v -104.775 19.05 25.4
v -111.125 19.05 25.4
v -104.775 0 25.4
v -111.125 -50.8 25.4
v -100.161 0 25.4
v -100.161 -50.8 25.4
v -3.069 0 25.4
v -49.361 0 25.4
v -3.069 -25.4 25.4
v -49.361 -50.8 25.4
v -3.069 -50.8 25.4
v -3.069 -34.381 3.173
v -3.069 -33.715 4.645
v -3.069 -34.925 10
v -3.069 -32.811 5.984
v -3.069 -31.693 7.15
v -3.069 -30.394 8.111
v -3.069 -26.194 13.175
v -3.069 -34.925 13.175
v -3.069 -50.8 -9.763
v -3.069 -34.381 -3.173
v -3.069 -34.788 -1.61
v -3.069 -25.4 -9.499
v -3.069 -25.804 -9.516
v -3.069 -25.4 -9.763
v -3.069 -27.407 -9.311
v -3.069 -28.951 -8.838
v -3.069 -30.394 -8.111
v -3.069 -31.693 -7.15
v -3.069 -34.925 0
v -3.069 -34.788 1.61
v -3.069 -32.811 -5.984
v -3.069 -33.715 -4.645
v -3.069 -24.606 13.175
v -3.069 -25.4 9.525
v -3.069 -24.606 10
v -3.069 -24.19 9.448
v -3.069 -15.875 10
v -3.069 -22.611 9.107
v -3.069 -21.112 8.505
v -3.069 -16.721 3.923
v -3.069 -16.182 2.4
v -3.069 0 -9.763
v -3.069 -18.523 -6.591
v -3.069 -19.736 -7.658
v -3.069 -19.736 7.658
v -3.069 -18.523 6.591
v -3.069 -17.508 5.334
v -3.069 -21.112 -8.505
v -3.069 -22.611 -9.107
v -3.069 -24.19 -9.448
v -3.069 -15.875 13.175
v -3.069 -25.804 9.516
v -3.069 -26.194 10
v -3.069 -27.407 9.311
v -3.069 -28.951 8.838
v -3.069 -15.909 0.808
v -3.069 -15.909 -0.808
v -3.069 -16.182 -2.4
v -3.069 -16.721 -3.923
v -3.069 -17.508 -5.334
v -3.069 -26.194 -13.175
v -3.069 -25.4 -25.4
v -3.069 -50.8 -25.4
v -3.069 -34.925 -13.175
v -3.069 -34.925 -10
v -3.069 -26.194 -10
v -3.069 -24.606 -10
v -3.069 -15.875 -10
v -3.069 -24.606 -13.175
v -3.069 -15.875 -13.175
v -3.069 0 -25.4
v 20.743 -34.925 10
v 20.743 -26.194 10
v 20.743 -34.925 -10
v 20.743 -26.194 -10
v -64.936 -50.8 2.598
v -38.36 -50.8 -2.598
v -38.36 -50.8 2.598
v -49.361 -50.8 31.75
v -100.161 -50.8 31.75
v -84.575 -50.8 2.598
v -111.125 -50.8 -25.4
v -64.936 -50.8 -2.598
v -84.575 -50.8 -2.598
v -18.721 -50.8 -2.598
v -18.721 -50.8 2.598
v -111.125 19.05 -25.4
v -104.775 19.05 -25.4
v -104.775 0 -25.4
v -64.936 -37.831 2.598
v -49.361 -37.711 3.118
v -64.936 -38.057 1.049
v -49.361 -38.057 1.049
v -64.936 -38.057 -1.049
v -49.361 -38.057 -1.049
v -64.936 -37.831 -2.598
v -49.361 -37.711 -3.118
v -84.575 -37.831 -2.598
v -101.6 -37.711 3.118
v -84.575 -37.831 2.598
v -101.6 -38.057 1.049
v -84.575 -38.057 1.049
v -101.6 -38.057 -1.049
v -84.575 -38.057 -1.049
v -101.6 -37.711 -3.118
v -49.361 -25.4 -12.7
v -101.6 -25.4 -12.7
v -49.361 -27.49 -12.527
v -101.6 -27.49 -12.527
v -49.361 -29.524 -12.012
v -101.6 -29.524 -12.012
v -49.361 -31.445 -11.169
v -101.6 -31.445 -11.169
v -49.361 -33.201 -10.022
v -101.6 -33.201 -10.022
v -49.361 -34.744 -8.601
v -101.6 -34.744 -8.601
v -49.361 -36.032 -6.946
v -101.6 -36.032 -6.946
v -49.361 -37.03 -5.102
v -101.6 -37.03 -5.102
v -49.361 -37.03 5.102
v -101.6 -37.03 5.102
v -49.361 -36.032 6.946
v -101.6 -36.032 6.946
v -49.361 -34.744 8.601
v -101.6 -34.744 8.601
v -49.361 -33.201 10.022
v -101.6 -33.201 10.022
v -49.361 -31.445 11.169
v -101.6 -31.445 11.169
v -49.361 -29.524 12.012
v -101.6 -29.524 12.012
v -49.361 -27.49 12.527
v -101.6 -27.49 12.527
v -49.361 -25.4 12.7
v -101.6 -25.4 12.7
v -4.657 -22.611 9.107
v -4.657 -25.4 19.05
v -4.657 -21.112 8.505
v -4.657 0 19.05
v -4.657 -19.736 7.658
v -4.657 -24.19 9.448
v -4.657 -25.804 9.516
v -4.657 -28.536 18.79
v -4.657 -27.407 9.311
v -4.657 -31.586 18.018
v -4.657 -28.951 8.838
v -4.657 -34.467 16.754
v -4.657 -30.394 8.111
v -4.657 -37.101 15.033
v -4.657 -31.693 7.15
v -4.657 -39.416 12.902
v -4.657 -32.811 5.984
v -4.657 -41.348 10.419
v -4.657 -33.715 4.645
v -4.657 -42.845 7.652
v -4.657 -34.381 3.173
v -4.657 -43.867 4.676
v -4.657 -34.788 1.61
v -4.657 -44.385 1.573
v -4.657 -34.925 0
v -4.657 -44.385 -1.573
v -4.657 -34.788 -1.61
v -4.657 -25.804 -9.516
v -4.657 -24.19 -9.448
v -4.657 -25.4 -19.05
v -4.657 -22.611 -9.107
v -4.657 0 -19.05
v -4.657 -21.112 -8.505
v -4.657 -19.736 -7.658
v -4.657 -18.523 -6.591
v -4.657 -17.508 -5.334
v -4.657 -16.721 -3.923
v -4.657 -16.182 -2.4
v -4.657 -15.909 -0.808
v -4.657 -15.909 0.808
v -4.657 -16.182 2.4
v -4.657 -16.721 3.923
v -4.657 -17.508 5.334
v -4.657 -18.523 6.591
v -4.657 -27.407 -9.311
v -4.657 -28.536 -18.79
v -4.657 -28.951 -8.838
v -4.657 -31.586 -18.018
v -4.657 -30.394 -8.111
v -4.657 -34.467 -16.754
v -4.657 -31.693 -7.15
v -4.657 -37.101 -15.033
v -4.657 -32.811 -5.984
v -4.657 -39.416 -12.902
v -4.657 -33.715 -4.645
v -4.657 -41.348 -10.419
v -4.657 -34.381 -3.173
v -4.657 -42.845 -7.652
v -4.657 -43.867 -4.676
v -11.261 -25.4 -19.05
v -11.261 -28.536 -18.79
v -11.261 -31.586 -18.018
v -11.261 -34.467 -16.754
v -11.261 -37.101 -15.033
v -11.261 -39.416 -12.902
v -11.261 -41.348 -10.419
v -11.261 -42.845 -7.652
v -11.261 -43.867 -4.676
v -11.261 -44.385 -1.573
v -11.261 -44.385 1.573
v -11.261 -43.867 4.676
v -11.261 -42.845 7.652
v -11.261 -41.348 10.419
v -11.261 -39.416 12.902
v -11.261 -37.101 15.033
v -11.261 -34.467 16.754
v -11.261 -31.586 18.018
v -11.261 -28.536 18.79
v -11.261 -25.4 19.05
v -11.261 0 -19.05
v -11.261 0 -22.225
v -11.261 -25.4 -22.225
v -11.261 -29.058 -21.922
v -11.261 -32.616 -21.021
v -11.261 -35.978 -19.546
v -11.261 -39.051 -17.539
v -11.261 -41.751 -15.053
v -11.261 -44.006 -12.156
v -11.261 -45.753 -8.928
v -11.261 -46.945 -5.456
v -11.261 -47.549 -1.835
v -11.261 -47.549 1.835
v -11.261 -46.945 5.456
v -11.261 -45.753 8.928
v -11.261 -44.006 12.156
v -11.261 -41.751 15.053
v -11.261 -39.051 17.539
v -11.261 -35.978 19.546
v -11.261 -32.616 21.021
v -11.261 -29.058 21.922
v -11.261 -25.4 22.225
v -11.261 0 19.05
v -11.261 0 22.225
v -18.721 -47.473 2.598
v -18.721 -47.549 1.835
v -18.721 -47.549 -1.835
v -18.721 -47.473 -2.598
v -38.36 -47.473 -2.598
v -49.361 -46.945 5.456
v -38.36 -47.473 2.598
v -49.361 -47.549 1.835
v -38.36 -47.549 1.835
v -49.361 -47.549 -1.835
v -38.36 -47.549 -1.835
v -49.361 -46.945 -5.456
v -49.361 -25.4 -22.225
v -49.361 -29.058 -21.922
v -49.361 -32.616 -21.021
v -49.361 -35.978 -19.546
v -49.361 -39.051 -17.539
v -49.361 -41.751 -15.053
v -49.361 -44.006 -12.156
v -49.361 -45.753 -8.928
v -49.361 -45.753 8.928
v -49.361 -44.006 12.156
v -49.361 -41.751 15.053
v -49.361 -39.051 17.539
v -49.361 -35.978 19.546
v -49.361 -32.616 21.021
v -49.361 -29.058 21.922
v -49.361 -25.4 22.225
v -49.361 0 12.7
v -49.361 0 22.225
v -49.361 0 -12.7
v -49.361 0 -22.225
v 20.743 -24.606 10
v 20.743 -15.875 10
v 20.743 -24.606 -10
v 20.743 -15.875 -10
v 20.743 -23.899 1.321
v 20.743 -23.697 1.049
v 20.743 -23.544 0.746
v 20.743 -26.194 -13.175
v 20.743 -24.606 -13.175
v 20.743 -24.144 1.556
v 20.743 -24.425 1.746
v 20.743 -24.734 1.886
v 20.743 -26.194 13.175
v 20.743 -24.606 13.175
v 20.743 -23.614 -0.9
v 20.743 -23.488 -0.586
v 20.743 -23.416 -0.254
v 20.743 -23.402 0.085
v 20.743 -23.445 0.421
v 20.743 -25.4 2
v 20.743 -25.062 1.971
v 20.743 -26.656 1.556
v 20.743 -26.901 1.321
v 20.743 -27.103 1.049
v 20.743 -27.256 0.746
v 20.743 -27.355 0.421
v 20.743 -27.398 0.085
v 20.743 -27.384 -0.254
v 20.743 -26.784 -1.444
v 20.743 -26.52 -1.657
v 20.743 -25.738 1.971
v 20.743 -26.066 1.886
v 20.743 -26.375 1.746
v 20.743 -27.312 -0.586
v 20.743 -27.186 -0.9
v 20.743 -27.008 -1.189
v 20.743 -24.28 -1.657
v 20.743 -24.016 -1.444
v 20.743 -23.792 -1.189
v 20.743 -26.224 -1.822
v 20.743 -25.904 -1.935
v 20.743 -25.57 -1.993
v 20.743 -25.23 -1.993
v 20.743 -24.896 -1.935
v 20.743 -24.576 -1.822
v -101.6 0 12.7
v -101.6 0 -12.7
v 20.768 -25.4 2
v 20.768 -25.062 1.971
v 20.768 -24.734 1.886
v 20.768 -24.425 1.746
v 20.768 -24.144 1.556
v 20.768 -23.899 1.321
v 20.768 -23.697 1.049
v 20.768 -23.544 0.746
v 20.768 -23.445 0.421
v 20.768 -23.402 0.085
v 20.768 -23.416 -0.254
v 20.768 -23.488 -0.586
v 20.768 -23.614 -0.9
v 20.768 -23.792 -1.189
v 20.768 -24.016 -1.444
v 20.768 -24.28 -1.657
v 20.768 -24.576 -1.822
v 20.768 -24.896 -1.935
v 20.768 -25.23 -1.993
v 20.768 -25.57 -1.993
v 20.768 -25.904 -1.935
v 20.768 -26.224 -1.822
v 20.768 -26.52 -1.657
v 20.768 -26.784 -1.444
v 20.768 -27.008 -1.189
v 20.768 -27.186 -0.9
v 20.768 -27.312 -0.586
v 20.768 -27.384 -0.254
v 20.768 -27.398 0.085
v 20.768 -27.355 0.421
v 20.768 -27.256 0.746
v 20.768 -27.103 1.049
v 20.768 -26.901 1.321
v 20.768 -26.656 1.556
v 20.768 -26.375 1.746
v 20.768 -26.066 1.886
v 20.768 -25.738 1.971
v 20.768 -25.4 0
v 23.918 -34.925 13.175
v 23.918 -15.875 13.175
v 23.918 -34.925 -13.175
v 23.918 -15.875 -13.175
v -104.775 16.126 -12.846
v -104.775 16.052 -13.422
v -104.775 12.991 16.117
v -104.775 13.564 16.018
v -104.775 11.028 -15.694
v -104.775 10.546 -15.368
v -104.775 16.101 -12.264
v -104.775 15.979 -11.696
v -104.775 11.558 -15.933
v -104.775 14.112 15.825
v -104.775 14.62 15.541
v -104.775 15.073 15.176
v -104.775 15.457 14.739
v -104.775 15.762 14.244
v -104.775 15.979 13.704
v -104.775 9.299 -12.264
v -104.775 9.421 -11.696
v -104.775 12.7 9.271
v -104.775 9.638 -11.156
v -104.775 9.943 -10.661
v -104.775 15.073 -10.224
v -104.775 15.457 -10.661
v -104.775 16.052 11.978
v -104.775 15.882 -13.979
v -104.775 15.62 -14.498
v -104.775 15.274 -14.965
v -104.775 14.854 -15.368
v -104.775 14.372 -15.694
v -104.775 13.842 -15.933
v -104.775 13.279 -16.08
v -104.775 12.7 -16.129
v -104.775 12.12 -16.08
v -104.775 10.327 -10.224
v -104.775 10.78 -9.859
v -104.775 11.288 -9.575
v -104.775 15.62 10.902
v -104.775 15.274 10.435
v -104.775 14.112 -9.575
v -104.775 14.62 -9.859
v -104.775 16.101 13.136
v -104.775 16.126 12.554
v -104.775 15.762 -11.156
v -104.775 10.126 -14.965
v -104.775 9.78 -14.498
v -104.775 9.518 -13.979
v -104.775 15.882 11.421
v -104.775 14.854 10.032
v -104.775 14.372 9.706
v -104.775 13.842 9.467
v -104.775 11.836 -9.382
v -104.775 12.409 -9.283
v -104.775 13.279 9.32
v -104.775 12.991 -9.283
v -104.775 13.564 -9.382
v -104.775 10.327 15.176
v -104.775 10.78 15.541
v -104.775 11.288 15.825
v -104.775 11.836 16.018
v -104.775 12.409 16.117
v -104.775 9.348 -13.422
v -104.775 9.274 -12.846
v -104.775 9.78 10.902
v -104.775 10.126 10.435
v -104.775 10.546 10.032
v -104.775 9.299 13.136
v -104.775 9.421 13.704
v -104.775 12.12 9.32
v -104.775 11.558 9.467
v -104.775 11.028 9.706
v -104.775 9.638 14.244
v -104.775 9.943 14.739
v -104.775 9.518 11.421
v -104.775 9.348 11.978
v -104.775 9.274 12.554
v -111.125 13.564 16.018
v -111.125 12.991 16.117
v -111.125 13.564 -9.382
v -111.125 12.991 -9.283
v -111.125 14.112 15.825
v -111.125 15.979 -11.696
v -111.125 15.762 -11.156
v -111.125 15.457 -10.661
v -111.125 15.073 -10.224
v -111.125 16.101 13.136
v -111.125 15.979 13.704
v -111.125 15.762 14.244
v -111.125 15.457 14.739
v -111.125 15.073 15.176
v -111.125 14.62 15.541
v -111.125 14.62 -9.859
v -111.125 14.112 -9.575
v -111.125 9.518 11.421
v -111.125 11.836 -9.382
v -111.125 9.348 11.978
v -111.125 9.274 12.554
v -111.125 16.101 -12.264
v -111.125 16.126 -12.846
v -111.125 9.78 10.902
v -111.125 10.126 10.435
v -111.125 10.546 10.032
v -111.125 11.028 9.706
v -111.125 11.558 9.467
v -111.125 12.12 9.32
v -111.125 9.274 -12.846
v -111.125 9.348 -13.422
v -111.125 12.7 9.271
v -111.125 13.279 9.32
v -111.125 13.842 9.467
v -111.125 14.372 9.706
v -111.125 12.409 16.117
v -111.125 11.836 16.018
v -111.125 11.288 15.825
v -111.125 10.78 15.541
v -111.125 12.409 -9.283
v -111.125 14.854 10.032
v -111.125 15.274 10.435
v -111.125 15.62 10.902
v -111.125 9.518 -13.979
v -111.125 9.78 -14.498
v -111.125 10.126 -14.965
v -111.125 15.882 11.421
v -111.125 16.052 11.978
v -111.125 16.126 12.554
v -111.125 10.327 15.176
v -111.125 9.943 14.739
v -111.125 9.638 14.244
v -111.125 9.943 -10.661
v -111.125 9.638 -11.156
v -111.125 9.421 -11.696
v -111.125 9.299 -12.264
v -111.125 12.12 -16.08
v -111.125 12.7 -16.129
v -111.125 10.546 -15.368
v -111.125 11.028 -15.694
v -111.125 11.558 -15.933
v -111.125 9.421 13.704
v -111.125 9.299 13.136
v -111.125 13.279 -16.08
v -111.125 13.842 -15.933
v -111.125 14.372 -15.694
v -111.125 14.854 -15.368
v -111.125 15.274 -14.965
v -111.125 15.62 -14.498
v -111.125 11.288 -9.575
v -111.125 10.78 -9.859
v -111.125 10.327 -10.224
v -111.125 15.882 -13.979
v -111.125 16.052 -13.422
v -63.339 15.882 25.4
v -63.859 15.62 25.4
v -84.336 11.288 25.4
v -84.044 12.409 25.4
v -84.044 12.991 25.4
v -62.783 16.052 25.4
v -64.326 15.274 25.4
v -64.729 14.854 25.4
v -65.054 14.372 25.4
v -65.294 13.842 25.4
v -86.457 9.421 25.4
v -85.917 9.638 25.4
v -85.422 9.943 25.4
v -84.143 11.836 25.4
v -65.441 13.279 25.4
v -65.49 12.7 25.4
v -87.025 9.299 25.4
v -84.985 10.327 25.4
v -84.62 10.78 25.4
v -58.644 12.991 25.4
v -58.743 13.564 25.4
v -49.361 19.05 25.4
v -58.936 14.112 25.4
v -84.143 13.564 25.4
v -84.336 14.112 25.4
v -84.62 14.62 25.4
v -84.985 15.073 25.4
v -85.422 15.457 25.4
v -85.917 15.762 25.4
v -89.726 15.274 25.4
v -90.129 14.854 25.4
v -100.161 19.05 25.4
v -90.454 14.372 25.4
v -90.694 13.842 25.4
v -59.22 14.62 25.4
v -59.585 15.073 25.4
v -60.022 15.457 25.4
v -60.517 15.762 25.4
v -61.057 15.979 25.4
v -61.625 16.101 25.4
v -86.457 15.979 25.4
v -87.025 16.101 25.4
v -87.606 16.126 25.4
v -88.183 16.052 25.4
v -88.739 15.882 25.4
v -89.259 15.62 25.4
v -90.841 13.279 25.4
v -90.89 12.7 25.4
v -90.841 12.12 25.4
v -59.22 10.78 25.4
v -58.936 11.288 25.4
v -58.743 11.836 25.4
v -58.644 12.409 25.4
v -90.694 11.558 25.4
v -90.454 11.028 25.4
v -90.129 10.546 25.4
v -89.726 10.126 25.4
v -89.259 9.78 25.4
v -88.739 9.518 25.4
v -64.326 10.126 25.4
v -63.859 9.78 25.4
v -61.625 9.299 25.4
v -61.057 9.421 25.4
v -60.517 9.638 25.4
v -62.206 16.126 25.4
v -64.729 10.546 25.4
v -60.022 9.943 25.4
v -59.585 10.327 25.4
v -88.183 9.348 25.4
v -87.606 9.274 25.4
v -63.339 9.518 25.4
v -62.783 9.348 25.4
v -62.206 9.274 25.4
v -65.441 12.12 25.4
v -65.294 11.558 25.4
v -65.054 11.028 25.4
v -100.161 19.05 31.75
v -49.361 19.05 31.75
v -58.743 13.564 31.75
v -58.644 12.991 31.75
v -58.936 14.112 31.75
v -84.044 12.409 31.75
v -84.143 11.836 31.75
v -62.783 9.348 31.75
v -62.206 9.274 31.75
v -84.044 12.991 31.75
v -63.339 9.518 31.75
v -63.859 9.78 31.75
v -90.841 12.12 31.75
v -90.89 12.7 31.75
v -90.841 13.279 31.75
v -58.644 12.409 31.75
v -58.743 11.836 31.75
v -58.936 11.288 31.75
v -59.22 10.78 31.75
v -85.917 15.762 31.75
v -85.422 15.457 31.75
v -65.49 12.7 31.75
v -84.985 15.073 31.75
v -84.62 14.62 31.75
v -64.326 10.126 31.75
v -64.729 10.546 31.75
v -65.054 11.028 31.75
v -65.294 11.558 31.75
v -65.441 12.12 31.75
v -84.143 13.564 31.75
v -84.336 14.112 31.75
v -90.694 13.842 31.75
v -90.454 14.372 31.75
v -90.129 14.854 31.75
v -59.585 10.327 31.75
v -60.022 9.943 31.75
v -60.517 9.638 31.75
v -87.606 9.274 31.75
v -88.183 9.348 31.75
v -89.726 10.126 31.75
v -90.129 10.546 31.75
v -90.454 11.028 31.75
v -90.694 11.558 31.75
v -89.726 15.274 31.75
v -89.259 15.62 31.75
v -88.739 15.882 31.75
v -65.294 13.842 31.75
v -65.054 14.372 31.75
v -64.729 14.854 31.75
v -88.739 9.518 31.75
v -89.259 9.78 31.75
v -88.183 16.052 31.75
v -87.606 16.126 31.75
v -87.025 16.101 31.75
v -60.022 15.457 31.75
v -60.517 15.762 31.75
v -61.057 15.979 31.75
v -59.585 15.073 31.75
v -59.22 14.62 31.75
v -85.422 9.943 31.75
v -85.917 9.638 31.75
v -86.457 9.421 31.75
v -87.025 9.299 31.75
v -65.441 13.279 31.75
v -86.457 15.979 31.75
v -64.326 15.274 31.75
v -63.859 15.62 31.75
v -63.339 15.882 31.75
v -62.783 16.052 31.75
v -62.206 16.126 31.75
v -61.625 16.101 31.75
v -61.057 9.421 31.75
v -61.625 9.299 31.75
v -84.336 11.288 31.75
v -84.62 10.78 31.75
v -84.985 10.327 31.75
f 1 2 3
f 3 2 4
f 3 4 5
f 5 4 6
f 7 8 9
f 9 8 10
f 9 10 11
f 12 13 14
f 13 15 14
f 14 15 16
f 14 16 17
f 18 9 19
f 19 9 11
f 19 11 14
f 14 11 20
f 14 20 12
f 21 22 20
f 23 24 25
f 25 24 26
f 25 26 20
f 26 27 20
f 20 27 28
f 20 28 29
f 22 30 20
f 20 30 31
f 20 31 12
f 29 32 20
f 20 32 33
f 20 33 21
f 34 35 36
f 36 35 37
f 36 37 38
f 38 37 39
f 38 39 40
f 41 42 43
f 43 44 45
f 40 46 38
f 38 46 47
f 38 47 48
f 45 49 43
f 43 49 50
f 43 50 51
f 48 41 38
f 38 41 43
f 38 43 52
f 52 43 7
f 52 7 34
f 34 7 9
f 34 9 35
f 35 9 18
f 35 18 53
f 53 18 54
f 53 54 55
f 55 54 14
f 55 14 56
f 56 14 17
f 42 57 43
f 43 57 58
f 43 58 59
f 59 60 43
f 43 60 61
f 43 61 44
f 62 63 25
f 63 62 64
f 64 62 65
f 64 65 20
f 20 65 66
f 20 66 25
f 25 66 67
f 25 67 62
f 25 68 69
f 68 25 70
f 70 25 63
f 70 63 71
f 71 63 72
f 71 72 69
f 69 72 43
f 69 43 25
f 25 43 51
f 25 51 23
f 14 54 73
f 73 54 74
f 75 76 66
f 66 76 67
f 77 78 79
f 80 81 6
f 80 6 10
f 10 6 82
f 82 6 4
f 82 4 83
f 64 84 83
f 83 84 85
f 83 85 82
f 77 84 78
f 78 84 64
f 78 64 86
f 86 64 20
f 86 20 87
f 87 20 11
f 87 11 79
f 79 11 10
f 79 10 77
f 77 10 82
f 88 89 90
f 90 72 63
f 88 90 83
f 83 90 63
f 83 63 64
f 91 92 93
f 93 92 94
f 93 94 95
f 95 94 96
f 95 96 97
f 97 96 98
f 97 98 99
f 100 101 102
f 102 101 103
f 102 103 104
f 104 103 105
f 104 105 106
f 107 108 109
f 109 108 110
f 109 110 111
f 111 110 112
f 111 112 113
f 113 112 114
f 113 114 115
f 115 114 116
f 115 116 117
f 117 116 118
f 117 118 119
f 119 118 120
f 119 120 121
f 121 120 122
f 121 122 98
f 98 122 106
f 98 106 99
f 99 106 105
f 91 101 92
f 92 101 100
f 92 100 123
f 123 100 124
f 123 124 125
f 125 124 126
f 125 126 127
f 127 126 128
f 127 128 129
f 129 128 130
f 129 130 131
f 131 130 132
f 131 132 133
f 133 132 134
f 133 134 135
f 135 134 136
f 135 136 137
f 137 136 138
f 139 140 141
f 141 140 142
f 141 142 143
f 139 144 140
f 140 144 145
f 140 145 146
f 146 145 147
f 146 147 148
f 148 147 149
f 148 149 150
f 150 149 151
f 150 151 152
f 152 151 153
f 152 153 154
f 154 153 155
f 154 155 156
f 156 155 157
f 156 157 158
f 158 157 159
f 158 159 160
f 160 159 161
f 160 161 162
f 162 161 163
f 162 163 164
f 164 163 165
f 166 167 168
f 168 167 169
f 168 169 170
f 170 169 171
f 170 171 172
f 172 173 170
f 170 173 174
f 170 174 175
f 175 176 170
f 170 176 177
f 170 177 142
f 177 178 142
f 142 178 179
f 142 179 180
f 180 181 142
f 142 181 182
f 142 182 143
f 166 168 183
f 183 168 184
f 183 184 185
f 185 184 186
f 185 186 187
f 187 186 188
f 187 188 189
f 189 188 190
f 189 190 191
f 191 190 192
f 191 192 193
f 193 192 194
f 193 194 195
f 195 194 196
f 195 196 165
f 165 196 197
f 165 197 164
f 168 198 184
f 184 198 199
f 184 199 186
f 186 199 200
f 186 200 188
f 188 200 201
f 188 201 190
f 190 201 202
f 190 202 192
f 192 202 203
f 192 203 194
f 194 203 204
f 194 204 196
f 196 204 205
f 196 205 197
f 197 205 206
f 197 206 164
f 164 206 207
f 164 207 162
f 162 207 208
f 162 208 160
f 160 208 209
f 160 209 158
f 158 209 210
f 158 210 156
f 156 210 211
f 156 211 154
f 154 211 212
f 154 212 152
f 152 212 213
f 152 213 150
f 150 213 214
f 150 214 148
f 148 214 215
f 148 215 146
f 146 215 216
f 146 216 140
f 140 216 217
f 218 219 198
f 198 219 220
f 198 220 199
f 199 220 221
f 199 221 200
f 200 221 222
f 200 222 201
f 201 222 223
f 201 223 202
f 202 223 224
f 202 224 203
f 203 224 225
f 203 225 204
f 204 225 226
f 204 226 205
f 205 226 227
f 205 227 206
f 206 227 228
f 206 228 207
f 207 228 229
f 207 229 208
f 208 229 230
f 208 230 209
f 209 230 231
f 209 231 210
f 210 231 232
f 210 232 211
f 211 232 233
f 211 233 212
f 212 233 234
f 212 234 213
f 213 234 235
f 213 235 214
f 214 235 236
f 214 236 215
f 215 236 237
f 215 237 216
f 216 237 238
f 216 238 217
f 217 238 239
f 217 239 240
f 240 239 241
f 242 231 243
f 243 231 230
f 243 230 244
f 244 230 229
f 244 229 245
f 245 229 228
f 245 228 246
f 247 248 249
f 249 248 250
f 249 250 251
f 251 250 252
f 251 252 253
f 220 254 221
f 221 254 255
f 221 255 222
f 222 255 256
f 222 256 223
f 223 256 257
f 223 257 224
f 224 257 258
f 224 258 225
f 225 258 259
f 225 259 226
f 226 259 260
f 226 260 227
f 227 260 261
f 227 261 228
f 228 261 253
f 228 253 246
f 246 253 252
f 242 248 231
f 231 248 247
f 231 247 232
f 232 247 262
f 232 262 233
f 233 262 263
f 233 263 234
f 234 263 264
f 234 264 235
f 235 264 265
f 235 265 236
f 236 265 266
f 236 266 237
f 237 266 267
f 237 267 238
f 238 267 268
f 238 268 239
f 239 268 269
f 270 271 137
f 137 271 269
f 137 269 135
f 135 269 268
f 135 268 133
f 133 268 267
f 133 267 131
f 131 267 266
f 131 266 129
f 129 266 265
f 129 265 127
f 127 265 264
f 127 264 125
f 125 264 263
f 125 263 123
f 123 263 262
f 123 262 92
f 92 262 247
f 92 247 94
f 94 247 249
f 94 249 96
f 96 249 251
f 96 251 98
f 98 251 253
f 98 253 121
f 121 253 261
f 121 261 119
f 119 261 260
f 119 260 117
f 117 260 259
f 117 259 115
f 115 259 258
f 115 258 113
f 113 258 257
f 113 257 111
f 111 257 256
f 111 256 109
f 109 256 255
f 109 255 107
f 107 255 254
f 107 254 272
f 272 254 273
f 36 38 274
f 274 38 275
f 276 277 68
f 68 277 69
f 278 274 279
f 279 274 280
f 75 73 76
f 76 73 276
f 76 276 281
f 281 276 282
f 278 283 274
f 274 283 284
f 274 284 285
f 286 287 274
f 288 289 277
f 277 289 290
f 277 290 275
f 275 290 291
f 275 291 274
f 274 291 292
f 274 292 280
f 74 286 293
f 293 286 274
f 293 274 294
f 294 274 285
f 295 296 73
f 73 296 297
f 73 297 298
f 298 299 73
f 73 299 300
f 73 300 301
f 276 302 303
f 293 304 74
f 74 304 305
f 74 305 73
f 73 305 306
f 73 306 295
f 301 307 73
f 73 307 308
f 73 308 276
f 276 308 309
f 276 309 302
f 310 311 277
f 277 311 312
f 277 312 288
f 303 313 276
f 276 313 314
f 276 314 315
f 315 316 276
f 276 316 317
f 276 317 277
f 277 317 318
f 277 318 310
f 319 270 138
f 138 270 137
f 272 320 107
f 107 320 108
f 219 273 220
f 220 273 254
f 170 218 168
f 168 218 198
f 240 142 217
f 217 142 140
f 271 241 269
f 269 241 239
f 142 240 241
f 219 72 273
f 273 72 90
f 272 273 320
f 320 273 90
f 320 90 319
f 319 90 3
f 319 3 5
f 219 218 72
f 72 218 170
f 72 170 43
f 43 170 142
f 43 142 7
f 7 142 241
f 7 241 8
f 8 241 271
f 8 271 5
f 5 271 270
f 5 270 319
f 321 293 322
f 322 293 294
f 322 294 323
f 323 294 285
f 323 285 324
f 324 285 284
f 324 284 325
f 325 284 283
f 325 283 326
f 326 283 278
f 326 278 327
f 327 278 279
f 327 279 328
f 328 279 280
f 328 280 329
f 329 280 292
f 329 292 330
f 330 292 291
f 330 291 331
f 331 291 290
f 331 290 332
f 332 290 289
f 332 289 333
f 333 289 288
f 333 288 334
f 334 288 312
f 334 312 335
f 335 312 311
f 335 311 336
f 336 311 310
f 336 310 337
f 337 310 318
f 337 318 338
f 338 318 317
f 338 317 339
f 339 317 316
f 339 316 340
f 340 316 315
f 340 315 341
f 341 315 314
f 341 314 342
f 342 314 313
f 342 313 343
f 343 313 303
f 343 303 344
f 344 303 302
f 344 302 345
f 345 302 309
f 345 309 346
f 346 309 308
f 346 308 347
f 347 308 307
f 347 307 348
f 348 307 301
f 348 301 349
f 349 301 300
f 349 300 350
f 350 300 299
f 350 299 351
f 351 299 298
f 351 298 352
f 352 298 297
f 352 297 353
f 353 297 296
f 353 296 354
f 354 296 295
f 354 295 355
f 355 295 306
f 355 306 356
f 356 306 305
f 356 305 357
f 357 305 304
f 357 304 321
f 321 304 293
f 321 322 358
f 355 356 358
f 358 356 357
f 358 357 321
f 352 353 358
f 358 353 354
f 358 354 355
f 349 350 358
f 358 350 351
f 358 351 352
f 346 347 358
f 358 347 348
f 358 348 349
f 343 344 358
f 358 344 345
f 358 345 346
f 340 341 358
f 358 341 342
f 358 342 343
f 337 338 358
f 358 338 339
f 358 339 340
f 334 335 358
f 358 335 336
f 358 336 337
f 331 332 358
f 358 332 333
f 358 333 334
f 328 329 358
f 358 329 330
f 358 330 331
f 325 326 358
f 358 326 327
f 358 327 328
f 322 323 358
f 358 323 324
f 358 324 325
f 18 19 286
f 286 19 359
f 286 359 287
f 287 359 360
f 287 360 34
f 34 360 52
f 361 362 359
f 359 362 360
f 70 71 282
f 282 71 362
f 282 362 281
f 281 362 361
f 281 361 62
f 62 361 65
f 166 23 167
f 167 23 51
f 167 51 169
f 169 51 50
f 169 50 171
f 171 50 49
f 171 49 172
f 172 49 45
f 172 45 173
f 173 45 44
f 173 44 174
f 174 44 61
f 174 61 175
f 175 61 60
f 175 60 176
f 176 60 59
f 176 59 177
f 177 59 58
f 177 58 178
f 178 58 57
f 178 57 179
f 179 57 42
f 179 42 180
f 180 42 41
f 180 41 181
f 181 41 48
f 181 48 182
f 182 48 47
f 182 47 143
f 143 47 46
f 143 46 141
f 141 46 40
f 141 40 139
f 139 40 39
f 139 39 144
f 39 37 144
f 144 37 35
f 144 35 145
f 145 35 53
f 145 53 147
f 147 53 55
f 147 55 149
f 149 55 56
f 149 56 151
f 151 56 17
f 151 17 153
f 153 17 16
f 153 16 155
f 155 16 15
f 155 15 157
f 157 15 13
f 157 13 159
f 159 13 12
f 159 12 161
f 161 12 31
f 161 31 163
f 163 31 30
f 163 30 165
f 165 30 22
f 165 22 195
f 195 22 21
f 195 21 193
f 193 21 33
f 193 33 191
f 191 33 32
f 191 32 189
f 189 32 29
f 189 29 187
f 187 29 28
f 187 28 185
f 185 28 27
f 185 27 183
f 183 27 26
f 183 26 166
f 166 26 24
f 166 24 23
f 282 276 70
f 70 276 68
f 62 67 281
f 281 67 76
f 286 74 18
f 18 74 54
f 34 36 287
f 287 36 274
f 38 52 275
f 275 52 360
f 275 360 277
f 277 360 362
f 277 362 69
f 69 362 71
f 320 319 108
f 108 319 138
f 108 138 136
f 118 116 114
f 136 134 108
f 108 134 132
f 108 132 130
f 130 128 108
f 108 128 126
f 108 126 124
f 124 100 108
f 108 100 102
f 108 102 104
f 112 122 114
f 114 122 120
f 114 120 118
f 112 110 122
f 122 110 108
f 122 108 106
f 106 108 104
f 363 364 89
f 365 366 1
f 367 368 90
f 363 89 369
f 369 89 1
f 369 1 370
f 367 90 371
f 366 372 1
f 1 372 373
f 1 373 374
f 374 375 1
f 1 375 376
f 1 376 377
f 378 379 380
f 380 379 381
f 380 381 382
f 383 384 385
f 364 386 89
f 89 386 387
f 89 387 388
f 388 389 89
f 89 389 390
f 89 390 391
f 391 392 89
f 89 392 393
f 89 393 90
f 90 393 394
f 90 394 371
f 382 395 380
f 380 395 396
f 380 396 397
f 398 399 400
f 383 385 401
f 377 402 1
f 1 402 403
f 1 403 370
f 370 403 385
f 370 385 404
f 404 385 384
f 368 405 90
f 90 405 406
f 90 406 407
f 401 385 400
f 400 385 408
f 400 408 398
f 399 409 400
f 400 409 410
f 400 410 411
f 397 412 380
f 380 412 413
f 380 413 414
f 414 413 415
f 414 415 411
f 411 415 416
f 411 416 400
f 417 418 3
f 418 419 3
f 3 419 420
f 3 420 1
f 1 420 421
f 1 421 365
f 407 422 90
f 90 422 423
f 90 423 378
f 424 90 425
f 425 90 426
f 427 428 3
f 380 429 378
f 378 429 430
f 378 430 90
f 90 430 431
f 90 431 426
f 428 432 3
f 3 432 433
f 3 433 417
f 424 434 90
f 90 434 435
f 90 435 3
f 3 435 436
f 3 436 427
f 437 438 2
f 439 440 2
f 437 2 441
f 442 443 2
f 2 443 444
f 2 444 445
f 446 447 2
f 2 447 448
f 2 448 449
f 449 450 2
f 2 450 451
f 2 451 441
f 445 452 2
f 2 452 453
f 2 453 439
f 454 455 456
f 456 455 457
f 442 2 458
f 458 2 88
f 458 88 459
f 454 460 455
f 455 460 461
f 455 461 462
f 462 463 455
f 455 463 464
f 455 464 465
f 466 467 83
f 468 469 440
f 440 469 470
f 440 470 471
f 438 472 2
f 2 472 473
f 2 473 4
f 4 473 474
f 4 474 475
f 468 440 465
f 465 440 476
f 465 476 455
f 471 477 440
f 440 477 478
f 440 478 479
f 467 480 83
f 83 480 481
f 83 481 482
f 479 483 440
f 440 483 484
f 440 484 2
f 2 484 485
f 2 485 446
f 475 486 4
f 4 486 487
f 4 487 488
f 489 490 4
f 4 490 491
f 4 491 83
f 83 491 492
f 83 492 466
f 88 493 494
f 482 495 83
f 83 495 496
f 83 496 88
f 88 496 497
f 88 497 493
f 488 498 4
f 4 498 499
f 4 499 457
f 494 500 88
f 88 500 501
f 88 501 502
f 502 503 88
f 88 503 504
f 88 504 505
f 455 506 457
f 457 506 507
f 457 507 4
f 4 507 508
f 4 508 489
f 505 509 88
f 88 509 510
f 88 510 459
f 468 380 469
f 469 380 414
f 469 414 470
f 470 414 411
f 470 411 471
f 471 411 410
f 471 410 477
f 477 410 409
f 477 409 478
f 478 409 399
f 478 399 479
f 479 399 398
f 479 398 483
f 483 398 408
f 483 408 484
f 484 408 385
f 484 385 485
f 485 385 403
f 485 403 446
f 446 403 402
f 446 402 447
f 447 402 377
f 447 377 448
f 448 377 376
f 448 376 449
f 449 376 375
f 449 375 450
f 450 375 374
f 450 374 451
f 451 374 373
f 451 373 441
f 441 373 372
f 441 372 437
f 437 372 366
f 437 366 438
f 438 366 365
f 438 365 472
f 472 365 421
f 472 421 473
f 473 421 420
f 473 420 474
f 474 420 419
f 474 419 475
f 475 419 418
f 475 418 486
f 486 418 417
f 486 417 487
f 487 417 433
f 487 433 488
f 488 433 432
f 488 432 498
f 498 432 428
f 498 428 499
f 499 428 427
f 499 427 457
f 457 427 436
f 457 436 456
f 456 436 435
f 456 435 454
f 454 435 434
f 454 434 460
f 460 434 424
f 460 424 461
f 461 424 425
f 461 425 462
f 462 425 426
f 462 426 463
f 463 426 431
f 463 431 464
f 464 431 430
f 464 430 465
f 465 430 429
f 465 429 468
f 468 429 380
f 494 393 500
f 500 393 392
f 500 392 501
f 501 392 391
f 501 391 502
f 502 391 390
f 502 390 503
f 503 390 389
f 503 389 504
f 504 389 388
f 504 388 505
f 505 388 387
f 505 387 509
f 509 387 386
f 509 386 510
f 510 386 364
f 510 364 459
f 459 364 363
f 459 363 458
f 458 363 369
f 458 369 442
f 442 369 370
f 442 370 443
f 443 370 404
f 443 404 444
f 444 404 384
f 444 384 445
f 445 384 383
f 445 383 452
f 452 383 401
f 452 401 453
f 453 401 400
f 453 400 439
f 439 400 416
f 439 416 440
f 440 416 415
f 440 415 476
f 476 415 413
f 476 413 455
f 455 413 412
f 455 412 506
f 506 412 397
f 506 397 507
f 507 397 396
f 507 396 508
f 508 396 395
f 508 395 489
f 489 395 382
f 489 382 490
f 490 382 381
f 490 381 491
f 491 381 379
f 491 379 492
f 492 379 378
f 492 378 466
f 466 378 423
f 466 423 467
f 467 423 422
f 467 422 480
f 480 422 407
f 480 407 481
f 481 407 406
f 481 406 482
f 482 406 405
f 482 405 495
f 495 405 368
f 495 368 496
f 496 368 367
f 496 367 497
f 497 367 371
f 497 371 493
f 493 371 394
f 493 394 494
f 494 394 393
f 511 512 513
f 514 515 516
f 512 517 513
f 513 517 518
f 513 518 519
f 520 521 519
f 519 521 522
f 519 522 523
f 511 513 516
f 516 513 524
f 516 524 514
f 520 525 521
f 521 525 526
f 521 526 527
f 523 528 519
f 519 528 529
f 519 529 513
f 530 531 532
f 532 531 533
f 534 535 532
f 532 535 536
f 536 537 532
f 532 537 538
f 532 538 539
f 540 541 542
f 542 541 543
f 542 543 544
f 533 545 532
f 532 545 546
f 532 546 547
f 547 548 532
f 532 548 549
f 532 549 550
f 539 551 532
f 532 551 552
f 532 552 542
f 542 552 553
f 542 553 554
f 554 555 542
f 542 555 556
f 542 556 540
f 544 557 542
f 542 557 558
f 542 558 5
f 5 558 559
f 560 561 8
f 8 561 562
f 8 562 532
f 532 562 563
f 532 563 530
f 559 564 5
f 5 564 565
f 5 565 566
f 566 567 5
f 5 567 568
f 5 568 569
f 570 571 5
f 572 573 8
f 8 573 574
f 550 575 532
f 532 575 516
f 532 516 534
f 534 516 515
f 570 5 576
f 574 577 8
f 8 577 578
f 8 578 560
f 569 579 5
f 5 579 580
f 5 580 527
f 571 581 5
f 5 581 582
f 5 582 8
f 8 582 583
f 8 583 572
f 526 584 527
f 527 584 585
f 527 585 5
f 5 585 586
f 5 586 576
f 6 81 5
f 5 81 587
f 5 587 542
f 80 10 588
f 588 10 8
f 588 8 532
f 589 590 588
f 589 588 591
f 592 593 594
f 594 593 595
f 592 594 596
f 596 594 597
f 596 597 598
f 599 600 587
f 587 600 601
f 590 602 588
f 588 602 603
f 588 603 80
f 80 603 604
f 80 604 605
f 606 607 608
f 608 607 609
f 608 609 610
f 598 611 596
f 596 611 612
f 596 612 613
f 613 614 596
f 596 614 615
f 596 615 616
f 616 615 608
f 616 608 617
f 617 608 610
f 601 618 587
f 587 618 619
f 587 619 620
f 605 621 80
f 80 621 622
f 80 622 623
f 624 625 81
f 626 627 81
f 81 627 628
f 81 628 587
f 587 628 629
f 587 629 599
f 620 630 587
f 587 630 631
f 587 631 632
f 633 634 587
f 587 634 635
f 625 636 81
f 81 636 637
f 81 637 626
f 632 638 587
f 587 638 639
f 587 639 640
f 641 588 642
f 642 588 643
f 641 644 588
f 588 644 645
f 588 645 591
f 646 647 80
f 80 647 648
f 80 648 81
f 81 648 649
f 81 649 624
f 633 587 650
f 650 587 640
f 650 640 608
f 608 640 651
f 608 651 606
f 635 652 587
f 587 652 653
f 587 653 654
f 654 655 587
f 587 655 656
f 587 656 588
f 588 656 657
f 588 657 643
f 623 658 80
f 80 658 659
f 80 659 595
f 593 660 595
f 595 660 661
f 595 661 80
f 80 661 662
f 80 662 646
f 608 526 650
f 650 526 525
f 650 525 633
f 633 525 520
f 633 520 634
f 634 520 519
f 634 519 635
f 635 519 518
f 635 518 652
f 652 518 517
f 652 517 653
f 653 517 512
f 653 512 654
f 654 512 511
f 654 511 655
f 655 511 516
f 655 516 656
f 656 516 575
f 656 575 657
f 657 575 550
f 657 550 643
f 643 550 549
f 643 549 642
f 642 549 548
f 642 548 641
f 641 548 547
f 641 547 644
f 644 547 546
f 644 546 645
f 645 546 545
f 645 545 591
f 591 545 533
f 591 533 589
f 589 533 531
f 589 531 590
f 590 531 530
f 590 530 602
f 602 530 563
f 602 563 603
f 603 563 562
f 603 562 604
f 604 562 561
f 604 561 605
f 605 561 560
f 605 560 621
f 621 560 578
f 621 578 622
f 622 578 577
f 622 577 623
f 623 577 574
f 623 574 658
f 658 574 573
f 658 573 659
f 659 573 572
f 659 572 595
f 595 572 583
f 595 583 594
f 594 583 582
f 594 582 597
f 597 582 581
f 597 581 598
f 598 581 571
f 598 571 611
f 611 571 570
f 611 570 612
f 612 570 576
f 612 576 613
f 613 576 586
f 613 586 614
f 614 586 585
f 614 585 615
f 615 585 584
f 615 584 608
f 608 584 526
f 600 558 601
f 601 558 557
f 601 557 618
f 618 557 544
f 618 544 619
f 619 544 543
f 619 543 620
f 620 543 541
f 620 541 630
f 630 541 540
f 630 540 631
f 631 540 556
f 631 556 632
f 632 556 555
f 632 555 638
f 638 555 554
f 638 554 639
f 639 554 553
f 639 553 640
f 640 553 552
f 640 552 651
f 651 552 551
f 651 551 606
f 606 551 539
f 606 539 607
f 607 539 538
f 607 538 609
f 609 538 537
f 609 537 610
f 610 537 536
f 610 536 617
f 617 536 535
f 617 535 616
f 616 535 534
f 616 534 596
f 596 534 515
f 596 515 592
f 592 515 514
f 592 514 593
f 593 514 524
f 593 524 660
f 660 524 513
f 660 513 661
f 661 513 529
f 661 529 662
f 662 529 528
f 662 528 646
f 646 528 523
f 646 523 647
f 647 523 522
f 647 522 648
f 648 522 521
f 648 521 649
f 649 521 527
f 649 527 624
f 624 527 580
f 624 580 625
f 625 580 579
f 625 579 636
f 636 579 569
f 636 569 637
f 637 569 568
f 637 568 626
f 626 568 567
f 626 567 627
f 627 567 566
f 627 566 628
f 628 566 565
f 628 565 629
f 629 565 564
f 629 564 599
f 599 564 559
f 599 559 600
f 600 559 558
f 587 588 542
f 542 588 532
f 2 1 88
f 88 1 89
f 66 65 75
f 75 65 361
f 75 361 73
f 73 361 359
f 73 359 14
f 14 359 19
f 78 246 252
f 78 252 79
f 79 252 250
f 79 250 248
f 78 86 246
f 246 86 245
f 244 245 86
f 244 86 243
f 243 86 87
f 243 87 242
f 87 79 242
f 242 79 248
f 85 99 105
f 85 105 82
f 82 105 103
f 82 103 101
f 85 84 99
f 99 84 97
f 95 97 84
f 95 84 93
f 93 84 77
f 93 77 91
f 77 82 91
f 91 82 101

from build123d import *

# Parameters (mm, degrees)
SKETCH1_W                = 116.84
SKETCH1_H                = 50.8
BOSS_EXTRUDE1_DEPTH      = 25.4
SKETCH38_W               = 20
SKETCH38_H               = 20
CUT_EXTRUDE33_DEPTH      = 23.8125
SKETCH37_W               = 50.8
SKETCH37_H               = 25.4
CUT_EXTRUDE32_DEPTH      = 130.912992422
BOSS_EXTRUDE5_DEPTH      = 25.4
CUT_EXTRUDE54_DEPTH      = 96.038097624
CUT_EXTRUDE54_DEPTH_BACK = 96.038097624
SKETCH45_W               = 43.7094
SKETCH45_H               = 19.05
SKETCH53_R               = 2
CUT_EXTRUDE46_DEPTH      = 0.0254
CUT_EXTRUDE55_DEPTH      = 87.36933773
SKETCH61_R               = 9.906
SKETCH61_R_2             = 9.525
BOSS_EXTRUDE11_DEPTH     = 1.5875
BOSS_EXTRUDE17_REACH     = 97.038
SKETCH70_W               = 1.5875
SKETCH70_H               = 19.812
SKETCH76_W               = 23.8125
SKETCH76_H               = 20
CUT_EXTRUDE58_DEPTH      = 88.776762301
CUT_EXTRUDE59_DEPTH      = 96.038097624
CUT_EXTRUDE59_DEPTH_BACK = 96.038097624
SKETCH77_W               = 23.8125
SKETCH77_H               = 1.5875
BOSS_EXTRUDE24_DEPTH     = 3.175
BOSS_EXTRUDE18_START     = 25.4
BOSS_EXTRUDE18_DEPTH     = 25.4
SKETCH79_W               = 50.8
SKETCH79_H               = 50.8
BOSS_EXTRUDE19_DEPTH     = 3.175
SKETCH80_W               = 50.8
SKETCH80_H               = 101.6
BOSS_EXTRUDE20_DEPTH     = 6.35
SKETCH81_R               = 3.429
CUT_EXTRUDE60_DEPTH      = 141.668809576
SKETCH82_W               = 50.8
SKETCH82_H               = 101.6
BOSS_EXTRUDE21_DEPTH     = 6.35
SKETCH83_R               = 3.429
CUT_EXTRUDE61_DEPTH      = 133.325529
SKETCH84_W               = 110.249820412
SKETCH84_H               = 109.628139174
CUT_EXTRUDE62_DEPTH      = 31.75
SKETCH87_W               = 26.9875
SKETCH87_H               = 38.575
CUT_EXTRUDE63_DEPTH      = 15.875
SKETCH89_W               = 19.639231936
SKETCH89_H               = 5.196150416
CUT_EXTRUDE64_DEPTH      = 127.243685486


with BuildPart() as part:
    # Sketch1 → Boss-Extrude1 (new, symmetric)
    with BuildSketch(Plane.XY):
        with Locations((-17.78, -25.4)):
            Rectangle(SKETCH1_W, SKETCH1_H)
    extrude(amount=BOSS_EXTRUDE1_DEPTH, both=True)

    # Sketch2 → Cut-Revolve1 (revolve, cut)
    with BuildSketch(Plane.XY, mode=Mode.PRIVATE) as cut_revolve1_sk:
        Polygon((-49.3609, -3.175), (-49.3609, -12.7), (-220.202391615, -12.7), (-220.202391615, -25.4), (-157.809194346, -25.4), (-128.417210056, -25.4), (19.629439755, -25.4), (20.7431, -25.4), (20.7431, -15.494), (-4.6569, -15.494), (-4.6569, -6.35), (-11.2609, -6.35), (-11.2609, -3.175), align=None)
    revolve(cut_revolve1_sk.sketch.rotate(Axis((-152.482877195, -25.4, 0), (1, 0, 0)), 90), axis=Axis((-152.482877195, -25.4, 0), (1, 0, 0)), mode=Mode.SUBTRACT)

    # Sketch38 → Cut-Extrude33 (cut)
    with BuildSketch(Plane(origin=(20.7431, 0, 0), x_dir=(0, 0, -1), z_dir=(1, 0, 0))):
        with Locations((0, -25.4)):
            Rectangle(SKETCH38_W, SKETCH38_H)
    extrude(amount=-CUT_EXTRUDE33_DEPTH, mode=Mode.SUBTRACT)

    # Sketch37 → Cut-Extrude32 (cut, through all)
    with BuildSketch(Plane(origin=(40.64, 0, 0), x_dir=(0, 0, -1), z_dir=(1, 0, 0))):
        with Locations((0, -12.7)):
            Rectangle(SKETCH37_W, SKETCH37_H)
    extrude(amount=-CUT_EXTRUDE32_DEPTH, mode=Mode.SUBTRACT)

    # Sketch39 → Boss-Extrude5 (add)
    with BuildSketch(Plane(origin=(0, -25.4, 0), x_dir=(1, 0, 0), z_dir=(0, 1, 0))):
        Polygon((-3.0694, 9.906), (-3.0694, 10), (20.7431, 10), (20.7431, -10), (-3.0694, -10), (-3.0694, -9.906), (-4.6569, -9.906), (-4.6569, -19.05), (-11.2609, -19.05), (-11.2609, -22.225), (-49.3609, -22.225), (-49.3609, -12.7), (-76.2, -12.7), (-76.2, -25.4), (40.64, -25.4), (40.64, 25.4), (-76.2, 25.4), (-76.2, 12.7), (-49.3609, 12.7), (-49.3609, 22.225), (-11.2609, 22.225), (-11.2609, 19.05), (-4.6569, 19.05), (-4.6569, 9.906), align=None)
    extrude(amount=BOSS_EXTRUDE5_DEPTH)

    # Sketch45 → Cut-Extrude54 (cut, two sides: drawn at the far end of the back side and taken through both)
    with BuildSketch(Plane.XY.offset(-CUT_EXTRUDE54_DEPTH_BACK)):
        with Locations((18.7853, -9.525)):
            Rectangle(SKETCH45_W, SKETCH45_H)
    extrude(amount=CUT_EXTRUDE54_DEPTH + CUT_EXTRUDE54_DEPTH_BACK, mode=Mode.SUBTRACT)

    # Sketch53 → Cut-Extrude46 (cut)
    with BuildSketch(Plane.ZY.offset(-20.7431)):
        with Locations((0, -25.4)):
            Circle(SKETCH53_R)
    extrude(amount=-CUT_EXTRUDE46_DEPTH, mode=Mode.SUBTRACT)

    # Sketch72 → Cut-Extrude55 (cut, through all)
    with BuildSketch(Plane(origin=(0, -19.05, 0), x_dir=(1, 0, 0), z_dir=(0, 1, 0))):
        Polygon((-3.0694, -25.4), (-3.0694, -13.175), (23.9181, -13.175), (23.9181, 13.175), (-3.0694, 13.175), (-3.0694, 25.4), (40.64, 25.4), (40.64, -25.4), align=None)
    extrude(amount=-CUT_EXTRUDE55_DEPTH, mode=Mode.SUBTRACT)

    # Sketch61 → Boss-Extrude11 (add)
    with BuildSketch(Plane.ZY.offset(4.6569)):
        with Locations((0, -25.4)):
            Circle(SKETCH61_R)
        with Locations(Location((0, -25.4, 0), (0, 0, 270))):
            Circle(SKETCH61_R_2, mode=Mode.SUBTRACT)
    extrude(amount=-BOSS_EXTRUDE11_DEPTH)

    # Sketch70 → Boss-Extrude17 (add, up to next)
    with BuildSketch(Plane(origin=(0, 0, 0), x_dir=(1, 0, 0), z_dir=(0, 1, 0)), mode=Mode.PRIVATE) as boss_extrude17_sk1:
        with Locations((-3.86315, 0)):
            Rectangle(SKETCH70_W, SKETCH70_H)
    boss_extrude17_tool1 = extrude(boss_extrude17_sk1.sketch, amount=-BOSS_EXTRUDE17_REACH, mode=Mode.PRIVATE) - part.part
    add(boss_extrude17_tool1.solids().sort_by_distance((-3.86315, 0, 0))[0])

    # Sketch76 → Cut-Extrude58 (cut, through all)
    with BuildSketch(Plane(origin=(0, -35.4, 0), x_dir=(1, 0, 0), z_dir=(0, 1, 0))):
        with Locations((8.83685, 0)):
            Rectangle(SKETCH76_W, SKETCH76_H)
    extrude(amount=-CUT_EXTRUDE58_DEPTH, mode=Mode.SUBTRACT)

    # Sketch77 → Cut-Extrude59 (cut, two sides: drawn at the far end of the back side and taken through both)
    with BuildSketch(Plane.XY.offset(-CUT_EXTRUDE59_DEPTH_BACK)):
        with Locations((8.83685, -25.4)):
            Rectangle(SKETCH77_W, SKETCH77_H)
    extrude(amount=CUT_EXTRUDE59_DEPTH + CUT_EXTRUDE59_DEPTH_BACK, mode=Mode.SUBTRACT)

    # Sketch86 → Boss-Extrude24 (add)
    with BuildSketch(Plane(origin=(0, -19.05, 0), x_dir=(1, 0, 0), z_dir=(0, 1, 0))):
        Polygon((20.7431, 10), (20.7431, -10), (-3.0694, -10), (-3.0694, -13.175), (23.9181, -13.175), (23.9181, 13.175), (-3.0694, 13.175), (-3.0694, 10), align=None)
    extrude(amount=BOSS_EXTRUDE24_DEPTH)

    # Sketch78 → Boss-Extrude18 (add)
    with BuildSketch(Plane.ZY.offset(76.2).offset(BOSS_EXTRUDE18_START)):
        with BuildLine():
            Line((25.4, -50.8), (25.4, 0))
            Line((25.4, 0), (12.7, 0))
            Line((12.7, 0), (12.7, -25.4))
            ThreePointArc((12.7, -25.4), (0, -38.1), (-12.7, -25.4))
            Line((-12.7, -25.4), (-12.7, 0))
            Line((-12.7, 0), (-25.4, 0))
            Line((-25.4, 0), (-25.4, -50.8))
            Line((-25.4, -50.8), (25.4, -50.8))
        make_face()
    extrude(amount=-BOSS_EXTRUDE18_DEPTH)

    # Sketch79 → Boss-Extrude19 (add)
    with BuildSketch(Plane.ZY.offset(101.6)):
        with Locations((0, -25.4)):
            Rectangle(SKETCH79_W, SKETCH79_H)
    extrude(amount=BOSS_EXTRUDE19_DEPTH)

    # Sketch80 → Boss-Extrude20 (add)
    with BuildSketch(Plane.ZY.offset(104.775)):
        Rectangle(SKETCH80_W, SKETCH80_H)
    extrude(amount=BOSS_EXTRUDE20_DEPTH)

    # Sketch81 → Cut-Extrude60 (cut, through all)
    with BuildSketch(Plane(origin=(-104.775, 0, 0), x_dir=(0, 0, -1), z_dir=(1, 0, 0))):
        with Locations((-12.7, 38.1)):
            Circle(SKETCH81_R)
        with Locations((12.7, 38.1)):
            Circle(SKETCH81_R)
        with Locations((12.7, 12.7)):
            Circle(SKETCH81_R)
        with Locations((-12.7, 12.7)):
            Circle(SKETCH81_R)
    extrude(amount=-CUT_EXTRUDE60_DEPTH, mode=Mode.SUBTRACT)

    # Sketch82 → Boss-Extrude21 (add)
    with BuildSketch(Plane.XY.offset(25.4)):
        with Locations((-74.7609, 0)):
            Rectangle(SKETCH82_W, SKETCH82_H)
    extrude(amount=BOSS_EXTRUDE21_DEPTH)

    # Sketch83 → Cut-Extrude61 (cut, through all)
    with BuildSketch(Plane(origin=(0, 0, 25.4), x_dir=(-1, 0, 0), z_dir=(0, 0, -1))):
        with Locations((62.0609, 38.1)):
            Circle(SKETCH83_R)
        with Locations((87.4609, 38.1)):
            Circle(SKETCH83_R)
        with Locations((87.4609, 12.7)):
            Circle(SKETCH83_R)
        with Locations((62.0609, 12.7)):
            Circle(SKETCH83_R)
    extrude(amount=-CUT_EXTRUDE61_DEPTH, mode=Mode.SUBTRACT)

    # Sketch84 → Cut-Extrude62 (cut)
    with BuildSketch(Plane(origin=(0, 50.8, 0), x_dir=(1, 0, 0), z_dir=(0, 1, 0))):
        with Locations((-74.595326767, 1.567462675)):
            Rectangle(SKETCH84_W, SKETCH84_H)
    extrude(amount=-CUT_EXTRUDE62_DEPTH, mode=Mode.SUBTRACT)

    # Sketch87 → Cut-Extrude63 (cut)
    with BuildSketch(Plane.XZ.offset(50.8)):
        with Locations((10.42435, -6.1125)):
            Rectangle(SKETCH87_W, SKETCH87_H)
    extrude(amount=-CUT_EXTRUDE63_DEPTH, mode=Mode.SUBTRACT)

    # Sketch89 → Cut-Extrude64 (cut, through all)
    with BuildSketch(Plane(origin=(0, 0, 0), x_dir=(1, 0, 0), z_dir=(0, 1, 0))):
        with Locations((-28.540888117, 0)):
            Rectangle(SKETCH89_W, SKETCH89_H)
        with Locations((-74.75534535, 0)):
            Rectangle(SKETCH89_W, SKETCH89_H)
    extrude(amount=-CUT_EXTRUDE64_DEPTH, mode=Mode.SUBTRACT)


solid = part.part
